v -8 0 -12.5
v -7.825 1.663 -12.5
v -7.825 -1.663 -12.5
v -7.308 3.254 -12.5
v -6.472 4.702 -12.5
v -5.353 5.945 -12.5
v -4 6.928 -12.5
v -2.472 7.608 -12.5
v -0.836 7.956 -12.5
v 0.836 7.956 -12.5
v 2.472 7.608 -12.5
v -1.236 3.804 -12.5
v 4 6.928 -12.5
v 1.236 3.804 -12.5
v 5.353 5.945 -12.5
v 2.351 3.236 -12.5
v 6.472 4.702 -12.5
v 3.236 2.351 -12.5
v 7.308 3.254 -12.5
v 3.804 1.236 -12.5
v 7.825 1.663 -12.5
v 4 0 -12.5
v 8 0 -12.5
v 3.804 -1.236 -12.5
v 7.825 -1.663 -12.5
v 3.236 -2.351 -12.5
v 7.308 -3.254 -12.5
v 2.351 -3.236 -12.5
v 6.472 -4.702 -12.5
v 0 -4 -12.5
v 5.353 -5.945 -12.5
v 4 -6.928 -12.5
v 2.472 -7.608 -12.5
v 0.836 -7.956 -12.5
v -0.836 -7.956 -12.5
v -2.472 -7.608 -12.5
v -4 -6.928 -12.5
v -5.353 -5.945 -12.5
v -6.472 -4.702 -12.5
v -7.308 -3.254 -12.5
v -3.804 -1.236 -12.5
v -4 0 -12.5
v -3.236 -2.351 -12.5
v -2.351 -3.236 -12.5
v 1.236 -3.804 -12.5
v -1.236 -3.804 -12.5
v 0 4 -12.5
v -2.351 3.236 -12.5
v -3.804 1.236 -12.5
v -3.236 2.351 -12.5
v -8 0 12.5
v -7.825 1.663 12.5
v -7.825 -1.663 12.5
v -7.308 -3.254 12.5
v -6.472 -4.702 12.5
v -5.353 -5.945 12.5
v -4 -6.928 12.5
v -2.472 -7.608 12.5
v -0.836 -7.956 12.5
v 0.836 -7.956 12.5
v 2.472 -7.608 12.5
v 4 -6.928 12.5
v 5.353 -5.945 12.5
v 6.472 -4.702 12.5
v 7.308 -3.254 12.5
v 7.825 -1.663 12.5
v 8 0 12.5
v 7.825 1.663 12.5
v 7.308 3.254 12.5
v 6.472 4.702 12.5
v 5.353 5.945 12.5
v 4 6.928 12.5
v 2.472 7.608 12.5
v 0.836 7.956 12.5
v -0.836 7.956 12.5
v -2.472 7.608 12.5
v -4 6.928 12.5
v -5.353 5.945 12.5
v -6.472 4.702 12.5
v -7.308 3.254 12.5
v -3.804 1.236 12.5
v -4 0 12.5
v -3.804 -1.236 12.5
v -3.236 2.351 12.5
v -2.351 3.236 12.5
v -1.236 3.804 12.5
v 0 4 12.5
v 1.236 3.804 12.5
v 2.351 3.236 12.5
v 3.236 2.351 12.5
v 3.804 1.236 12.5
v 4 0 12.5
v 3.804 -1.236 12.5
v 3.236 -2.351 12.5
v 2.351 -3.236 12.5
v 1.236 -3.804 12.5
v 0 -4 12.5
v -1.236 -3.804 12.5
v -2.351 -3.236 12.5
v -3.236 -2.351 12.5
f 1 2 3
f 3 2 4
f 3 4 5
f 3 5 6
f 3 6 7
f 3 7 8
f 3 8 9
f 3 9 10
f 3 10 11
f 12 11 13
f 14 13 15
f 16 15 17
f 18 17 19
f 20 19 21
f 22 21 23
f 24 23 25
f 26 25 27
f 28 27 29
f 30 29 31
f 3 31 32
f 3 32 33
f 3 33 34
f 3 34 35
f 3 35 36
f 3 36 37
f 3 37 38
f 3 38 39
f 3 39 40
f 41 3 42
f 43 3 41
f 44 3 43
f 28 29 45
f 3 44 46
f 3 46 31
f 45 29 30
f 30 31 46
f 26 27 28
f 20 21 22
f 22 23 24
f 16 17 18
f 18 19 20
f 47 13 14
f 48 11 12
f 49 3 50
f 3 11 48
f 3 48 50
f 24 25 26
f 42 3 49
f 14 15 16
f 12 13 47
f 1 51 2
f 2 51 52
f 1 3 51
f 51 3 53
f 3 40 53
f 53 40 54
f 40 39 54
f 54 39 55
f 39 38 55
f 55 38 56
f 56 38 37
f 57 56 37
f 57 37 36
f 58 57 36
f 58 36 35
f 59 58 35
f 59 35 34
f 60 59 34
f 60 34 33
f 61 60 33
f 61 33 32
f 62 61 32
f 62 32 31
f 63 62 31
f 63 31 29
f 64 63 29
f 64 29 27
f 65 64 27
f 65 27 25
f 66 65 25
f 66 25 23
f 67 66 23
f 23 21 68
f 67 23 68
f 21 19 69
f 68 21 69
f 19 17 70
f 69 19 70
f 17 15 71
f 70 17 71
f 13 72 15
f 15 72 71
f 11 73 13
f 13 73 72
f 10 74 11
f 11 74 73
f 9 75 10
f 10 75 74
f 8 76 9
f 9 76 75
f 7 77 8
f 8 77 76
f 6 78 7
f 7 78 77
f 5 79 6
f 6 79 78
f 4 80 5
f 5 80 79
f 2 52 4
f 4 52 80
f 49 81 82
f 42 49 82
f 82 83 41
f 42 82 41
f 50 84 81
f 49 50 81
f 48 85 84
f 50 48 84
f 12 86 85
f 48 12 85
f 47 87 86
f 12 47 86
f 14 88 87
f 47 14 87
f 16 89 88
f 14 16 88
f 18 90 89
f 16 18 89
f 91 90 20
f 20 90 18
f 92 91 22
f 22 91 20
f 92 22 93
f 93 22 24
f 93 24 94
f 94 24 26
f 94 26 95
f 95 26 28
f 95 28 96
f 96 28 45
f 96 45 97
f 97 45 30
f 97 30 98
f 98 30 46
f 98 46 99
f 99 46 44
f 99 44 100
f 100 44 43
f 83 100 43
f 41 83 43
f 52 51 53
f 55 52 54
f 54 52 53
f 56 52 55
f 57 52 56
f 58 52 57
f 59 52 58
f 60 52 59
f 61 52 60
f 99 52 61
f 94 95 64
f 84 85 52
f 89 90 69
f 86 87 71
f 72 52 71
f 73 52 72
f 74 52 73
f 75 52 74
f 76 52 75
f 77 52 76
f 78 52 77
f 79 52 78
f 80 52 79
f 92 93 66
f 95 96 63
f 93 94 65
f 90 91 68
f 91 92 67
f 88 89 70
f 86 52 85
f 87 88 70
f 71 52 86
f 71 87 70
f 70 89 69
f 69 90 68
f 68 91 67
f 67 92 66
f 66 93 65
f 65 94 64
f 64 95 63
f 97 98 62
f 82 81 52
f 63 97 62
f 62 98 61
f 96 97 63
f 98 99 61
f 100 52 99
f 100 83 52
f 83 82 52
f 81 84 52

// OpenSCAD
difference() {
  cylinder(r=16/2, h=25, center=true, $fn=30);
  cylinder(r=8/2, h=30, center=true, $fn=20);
}
